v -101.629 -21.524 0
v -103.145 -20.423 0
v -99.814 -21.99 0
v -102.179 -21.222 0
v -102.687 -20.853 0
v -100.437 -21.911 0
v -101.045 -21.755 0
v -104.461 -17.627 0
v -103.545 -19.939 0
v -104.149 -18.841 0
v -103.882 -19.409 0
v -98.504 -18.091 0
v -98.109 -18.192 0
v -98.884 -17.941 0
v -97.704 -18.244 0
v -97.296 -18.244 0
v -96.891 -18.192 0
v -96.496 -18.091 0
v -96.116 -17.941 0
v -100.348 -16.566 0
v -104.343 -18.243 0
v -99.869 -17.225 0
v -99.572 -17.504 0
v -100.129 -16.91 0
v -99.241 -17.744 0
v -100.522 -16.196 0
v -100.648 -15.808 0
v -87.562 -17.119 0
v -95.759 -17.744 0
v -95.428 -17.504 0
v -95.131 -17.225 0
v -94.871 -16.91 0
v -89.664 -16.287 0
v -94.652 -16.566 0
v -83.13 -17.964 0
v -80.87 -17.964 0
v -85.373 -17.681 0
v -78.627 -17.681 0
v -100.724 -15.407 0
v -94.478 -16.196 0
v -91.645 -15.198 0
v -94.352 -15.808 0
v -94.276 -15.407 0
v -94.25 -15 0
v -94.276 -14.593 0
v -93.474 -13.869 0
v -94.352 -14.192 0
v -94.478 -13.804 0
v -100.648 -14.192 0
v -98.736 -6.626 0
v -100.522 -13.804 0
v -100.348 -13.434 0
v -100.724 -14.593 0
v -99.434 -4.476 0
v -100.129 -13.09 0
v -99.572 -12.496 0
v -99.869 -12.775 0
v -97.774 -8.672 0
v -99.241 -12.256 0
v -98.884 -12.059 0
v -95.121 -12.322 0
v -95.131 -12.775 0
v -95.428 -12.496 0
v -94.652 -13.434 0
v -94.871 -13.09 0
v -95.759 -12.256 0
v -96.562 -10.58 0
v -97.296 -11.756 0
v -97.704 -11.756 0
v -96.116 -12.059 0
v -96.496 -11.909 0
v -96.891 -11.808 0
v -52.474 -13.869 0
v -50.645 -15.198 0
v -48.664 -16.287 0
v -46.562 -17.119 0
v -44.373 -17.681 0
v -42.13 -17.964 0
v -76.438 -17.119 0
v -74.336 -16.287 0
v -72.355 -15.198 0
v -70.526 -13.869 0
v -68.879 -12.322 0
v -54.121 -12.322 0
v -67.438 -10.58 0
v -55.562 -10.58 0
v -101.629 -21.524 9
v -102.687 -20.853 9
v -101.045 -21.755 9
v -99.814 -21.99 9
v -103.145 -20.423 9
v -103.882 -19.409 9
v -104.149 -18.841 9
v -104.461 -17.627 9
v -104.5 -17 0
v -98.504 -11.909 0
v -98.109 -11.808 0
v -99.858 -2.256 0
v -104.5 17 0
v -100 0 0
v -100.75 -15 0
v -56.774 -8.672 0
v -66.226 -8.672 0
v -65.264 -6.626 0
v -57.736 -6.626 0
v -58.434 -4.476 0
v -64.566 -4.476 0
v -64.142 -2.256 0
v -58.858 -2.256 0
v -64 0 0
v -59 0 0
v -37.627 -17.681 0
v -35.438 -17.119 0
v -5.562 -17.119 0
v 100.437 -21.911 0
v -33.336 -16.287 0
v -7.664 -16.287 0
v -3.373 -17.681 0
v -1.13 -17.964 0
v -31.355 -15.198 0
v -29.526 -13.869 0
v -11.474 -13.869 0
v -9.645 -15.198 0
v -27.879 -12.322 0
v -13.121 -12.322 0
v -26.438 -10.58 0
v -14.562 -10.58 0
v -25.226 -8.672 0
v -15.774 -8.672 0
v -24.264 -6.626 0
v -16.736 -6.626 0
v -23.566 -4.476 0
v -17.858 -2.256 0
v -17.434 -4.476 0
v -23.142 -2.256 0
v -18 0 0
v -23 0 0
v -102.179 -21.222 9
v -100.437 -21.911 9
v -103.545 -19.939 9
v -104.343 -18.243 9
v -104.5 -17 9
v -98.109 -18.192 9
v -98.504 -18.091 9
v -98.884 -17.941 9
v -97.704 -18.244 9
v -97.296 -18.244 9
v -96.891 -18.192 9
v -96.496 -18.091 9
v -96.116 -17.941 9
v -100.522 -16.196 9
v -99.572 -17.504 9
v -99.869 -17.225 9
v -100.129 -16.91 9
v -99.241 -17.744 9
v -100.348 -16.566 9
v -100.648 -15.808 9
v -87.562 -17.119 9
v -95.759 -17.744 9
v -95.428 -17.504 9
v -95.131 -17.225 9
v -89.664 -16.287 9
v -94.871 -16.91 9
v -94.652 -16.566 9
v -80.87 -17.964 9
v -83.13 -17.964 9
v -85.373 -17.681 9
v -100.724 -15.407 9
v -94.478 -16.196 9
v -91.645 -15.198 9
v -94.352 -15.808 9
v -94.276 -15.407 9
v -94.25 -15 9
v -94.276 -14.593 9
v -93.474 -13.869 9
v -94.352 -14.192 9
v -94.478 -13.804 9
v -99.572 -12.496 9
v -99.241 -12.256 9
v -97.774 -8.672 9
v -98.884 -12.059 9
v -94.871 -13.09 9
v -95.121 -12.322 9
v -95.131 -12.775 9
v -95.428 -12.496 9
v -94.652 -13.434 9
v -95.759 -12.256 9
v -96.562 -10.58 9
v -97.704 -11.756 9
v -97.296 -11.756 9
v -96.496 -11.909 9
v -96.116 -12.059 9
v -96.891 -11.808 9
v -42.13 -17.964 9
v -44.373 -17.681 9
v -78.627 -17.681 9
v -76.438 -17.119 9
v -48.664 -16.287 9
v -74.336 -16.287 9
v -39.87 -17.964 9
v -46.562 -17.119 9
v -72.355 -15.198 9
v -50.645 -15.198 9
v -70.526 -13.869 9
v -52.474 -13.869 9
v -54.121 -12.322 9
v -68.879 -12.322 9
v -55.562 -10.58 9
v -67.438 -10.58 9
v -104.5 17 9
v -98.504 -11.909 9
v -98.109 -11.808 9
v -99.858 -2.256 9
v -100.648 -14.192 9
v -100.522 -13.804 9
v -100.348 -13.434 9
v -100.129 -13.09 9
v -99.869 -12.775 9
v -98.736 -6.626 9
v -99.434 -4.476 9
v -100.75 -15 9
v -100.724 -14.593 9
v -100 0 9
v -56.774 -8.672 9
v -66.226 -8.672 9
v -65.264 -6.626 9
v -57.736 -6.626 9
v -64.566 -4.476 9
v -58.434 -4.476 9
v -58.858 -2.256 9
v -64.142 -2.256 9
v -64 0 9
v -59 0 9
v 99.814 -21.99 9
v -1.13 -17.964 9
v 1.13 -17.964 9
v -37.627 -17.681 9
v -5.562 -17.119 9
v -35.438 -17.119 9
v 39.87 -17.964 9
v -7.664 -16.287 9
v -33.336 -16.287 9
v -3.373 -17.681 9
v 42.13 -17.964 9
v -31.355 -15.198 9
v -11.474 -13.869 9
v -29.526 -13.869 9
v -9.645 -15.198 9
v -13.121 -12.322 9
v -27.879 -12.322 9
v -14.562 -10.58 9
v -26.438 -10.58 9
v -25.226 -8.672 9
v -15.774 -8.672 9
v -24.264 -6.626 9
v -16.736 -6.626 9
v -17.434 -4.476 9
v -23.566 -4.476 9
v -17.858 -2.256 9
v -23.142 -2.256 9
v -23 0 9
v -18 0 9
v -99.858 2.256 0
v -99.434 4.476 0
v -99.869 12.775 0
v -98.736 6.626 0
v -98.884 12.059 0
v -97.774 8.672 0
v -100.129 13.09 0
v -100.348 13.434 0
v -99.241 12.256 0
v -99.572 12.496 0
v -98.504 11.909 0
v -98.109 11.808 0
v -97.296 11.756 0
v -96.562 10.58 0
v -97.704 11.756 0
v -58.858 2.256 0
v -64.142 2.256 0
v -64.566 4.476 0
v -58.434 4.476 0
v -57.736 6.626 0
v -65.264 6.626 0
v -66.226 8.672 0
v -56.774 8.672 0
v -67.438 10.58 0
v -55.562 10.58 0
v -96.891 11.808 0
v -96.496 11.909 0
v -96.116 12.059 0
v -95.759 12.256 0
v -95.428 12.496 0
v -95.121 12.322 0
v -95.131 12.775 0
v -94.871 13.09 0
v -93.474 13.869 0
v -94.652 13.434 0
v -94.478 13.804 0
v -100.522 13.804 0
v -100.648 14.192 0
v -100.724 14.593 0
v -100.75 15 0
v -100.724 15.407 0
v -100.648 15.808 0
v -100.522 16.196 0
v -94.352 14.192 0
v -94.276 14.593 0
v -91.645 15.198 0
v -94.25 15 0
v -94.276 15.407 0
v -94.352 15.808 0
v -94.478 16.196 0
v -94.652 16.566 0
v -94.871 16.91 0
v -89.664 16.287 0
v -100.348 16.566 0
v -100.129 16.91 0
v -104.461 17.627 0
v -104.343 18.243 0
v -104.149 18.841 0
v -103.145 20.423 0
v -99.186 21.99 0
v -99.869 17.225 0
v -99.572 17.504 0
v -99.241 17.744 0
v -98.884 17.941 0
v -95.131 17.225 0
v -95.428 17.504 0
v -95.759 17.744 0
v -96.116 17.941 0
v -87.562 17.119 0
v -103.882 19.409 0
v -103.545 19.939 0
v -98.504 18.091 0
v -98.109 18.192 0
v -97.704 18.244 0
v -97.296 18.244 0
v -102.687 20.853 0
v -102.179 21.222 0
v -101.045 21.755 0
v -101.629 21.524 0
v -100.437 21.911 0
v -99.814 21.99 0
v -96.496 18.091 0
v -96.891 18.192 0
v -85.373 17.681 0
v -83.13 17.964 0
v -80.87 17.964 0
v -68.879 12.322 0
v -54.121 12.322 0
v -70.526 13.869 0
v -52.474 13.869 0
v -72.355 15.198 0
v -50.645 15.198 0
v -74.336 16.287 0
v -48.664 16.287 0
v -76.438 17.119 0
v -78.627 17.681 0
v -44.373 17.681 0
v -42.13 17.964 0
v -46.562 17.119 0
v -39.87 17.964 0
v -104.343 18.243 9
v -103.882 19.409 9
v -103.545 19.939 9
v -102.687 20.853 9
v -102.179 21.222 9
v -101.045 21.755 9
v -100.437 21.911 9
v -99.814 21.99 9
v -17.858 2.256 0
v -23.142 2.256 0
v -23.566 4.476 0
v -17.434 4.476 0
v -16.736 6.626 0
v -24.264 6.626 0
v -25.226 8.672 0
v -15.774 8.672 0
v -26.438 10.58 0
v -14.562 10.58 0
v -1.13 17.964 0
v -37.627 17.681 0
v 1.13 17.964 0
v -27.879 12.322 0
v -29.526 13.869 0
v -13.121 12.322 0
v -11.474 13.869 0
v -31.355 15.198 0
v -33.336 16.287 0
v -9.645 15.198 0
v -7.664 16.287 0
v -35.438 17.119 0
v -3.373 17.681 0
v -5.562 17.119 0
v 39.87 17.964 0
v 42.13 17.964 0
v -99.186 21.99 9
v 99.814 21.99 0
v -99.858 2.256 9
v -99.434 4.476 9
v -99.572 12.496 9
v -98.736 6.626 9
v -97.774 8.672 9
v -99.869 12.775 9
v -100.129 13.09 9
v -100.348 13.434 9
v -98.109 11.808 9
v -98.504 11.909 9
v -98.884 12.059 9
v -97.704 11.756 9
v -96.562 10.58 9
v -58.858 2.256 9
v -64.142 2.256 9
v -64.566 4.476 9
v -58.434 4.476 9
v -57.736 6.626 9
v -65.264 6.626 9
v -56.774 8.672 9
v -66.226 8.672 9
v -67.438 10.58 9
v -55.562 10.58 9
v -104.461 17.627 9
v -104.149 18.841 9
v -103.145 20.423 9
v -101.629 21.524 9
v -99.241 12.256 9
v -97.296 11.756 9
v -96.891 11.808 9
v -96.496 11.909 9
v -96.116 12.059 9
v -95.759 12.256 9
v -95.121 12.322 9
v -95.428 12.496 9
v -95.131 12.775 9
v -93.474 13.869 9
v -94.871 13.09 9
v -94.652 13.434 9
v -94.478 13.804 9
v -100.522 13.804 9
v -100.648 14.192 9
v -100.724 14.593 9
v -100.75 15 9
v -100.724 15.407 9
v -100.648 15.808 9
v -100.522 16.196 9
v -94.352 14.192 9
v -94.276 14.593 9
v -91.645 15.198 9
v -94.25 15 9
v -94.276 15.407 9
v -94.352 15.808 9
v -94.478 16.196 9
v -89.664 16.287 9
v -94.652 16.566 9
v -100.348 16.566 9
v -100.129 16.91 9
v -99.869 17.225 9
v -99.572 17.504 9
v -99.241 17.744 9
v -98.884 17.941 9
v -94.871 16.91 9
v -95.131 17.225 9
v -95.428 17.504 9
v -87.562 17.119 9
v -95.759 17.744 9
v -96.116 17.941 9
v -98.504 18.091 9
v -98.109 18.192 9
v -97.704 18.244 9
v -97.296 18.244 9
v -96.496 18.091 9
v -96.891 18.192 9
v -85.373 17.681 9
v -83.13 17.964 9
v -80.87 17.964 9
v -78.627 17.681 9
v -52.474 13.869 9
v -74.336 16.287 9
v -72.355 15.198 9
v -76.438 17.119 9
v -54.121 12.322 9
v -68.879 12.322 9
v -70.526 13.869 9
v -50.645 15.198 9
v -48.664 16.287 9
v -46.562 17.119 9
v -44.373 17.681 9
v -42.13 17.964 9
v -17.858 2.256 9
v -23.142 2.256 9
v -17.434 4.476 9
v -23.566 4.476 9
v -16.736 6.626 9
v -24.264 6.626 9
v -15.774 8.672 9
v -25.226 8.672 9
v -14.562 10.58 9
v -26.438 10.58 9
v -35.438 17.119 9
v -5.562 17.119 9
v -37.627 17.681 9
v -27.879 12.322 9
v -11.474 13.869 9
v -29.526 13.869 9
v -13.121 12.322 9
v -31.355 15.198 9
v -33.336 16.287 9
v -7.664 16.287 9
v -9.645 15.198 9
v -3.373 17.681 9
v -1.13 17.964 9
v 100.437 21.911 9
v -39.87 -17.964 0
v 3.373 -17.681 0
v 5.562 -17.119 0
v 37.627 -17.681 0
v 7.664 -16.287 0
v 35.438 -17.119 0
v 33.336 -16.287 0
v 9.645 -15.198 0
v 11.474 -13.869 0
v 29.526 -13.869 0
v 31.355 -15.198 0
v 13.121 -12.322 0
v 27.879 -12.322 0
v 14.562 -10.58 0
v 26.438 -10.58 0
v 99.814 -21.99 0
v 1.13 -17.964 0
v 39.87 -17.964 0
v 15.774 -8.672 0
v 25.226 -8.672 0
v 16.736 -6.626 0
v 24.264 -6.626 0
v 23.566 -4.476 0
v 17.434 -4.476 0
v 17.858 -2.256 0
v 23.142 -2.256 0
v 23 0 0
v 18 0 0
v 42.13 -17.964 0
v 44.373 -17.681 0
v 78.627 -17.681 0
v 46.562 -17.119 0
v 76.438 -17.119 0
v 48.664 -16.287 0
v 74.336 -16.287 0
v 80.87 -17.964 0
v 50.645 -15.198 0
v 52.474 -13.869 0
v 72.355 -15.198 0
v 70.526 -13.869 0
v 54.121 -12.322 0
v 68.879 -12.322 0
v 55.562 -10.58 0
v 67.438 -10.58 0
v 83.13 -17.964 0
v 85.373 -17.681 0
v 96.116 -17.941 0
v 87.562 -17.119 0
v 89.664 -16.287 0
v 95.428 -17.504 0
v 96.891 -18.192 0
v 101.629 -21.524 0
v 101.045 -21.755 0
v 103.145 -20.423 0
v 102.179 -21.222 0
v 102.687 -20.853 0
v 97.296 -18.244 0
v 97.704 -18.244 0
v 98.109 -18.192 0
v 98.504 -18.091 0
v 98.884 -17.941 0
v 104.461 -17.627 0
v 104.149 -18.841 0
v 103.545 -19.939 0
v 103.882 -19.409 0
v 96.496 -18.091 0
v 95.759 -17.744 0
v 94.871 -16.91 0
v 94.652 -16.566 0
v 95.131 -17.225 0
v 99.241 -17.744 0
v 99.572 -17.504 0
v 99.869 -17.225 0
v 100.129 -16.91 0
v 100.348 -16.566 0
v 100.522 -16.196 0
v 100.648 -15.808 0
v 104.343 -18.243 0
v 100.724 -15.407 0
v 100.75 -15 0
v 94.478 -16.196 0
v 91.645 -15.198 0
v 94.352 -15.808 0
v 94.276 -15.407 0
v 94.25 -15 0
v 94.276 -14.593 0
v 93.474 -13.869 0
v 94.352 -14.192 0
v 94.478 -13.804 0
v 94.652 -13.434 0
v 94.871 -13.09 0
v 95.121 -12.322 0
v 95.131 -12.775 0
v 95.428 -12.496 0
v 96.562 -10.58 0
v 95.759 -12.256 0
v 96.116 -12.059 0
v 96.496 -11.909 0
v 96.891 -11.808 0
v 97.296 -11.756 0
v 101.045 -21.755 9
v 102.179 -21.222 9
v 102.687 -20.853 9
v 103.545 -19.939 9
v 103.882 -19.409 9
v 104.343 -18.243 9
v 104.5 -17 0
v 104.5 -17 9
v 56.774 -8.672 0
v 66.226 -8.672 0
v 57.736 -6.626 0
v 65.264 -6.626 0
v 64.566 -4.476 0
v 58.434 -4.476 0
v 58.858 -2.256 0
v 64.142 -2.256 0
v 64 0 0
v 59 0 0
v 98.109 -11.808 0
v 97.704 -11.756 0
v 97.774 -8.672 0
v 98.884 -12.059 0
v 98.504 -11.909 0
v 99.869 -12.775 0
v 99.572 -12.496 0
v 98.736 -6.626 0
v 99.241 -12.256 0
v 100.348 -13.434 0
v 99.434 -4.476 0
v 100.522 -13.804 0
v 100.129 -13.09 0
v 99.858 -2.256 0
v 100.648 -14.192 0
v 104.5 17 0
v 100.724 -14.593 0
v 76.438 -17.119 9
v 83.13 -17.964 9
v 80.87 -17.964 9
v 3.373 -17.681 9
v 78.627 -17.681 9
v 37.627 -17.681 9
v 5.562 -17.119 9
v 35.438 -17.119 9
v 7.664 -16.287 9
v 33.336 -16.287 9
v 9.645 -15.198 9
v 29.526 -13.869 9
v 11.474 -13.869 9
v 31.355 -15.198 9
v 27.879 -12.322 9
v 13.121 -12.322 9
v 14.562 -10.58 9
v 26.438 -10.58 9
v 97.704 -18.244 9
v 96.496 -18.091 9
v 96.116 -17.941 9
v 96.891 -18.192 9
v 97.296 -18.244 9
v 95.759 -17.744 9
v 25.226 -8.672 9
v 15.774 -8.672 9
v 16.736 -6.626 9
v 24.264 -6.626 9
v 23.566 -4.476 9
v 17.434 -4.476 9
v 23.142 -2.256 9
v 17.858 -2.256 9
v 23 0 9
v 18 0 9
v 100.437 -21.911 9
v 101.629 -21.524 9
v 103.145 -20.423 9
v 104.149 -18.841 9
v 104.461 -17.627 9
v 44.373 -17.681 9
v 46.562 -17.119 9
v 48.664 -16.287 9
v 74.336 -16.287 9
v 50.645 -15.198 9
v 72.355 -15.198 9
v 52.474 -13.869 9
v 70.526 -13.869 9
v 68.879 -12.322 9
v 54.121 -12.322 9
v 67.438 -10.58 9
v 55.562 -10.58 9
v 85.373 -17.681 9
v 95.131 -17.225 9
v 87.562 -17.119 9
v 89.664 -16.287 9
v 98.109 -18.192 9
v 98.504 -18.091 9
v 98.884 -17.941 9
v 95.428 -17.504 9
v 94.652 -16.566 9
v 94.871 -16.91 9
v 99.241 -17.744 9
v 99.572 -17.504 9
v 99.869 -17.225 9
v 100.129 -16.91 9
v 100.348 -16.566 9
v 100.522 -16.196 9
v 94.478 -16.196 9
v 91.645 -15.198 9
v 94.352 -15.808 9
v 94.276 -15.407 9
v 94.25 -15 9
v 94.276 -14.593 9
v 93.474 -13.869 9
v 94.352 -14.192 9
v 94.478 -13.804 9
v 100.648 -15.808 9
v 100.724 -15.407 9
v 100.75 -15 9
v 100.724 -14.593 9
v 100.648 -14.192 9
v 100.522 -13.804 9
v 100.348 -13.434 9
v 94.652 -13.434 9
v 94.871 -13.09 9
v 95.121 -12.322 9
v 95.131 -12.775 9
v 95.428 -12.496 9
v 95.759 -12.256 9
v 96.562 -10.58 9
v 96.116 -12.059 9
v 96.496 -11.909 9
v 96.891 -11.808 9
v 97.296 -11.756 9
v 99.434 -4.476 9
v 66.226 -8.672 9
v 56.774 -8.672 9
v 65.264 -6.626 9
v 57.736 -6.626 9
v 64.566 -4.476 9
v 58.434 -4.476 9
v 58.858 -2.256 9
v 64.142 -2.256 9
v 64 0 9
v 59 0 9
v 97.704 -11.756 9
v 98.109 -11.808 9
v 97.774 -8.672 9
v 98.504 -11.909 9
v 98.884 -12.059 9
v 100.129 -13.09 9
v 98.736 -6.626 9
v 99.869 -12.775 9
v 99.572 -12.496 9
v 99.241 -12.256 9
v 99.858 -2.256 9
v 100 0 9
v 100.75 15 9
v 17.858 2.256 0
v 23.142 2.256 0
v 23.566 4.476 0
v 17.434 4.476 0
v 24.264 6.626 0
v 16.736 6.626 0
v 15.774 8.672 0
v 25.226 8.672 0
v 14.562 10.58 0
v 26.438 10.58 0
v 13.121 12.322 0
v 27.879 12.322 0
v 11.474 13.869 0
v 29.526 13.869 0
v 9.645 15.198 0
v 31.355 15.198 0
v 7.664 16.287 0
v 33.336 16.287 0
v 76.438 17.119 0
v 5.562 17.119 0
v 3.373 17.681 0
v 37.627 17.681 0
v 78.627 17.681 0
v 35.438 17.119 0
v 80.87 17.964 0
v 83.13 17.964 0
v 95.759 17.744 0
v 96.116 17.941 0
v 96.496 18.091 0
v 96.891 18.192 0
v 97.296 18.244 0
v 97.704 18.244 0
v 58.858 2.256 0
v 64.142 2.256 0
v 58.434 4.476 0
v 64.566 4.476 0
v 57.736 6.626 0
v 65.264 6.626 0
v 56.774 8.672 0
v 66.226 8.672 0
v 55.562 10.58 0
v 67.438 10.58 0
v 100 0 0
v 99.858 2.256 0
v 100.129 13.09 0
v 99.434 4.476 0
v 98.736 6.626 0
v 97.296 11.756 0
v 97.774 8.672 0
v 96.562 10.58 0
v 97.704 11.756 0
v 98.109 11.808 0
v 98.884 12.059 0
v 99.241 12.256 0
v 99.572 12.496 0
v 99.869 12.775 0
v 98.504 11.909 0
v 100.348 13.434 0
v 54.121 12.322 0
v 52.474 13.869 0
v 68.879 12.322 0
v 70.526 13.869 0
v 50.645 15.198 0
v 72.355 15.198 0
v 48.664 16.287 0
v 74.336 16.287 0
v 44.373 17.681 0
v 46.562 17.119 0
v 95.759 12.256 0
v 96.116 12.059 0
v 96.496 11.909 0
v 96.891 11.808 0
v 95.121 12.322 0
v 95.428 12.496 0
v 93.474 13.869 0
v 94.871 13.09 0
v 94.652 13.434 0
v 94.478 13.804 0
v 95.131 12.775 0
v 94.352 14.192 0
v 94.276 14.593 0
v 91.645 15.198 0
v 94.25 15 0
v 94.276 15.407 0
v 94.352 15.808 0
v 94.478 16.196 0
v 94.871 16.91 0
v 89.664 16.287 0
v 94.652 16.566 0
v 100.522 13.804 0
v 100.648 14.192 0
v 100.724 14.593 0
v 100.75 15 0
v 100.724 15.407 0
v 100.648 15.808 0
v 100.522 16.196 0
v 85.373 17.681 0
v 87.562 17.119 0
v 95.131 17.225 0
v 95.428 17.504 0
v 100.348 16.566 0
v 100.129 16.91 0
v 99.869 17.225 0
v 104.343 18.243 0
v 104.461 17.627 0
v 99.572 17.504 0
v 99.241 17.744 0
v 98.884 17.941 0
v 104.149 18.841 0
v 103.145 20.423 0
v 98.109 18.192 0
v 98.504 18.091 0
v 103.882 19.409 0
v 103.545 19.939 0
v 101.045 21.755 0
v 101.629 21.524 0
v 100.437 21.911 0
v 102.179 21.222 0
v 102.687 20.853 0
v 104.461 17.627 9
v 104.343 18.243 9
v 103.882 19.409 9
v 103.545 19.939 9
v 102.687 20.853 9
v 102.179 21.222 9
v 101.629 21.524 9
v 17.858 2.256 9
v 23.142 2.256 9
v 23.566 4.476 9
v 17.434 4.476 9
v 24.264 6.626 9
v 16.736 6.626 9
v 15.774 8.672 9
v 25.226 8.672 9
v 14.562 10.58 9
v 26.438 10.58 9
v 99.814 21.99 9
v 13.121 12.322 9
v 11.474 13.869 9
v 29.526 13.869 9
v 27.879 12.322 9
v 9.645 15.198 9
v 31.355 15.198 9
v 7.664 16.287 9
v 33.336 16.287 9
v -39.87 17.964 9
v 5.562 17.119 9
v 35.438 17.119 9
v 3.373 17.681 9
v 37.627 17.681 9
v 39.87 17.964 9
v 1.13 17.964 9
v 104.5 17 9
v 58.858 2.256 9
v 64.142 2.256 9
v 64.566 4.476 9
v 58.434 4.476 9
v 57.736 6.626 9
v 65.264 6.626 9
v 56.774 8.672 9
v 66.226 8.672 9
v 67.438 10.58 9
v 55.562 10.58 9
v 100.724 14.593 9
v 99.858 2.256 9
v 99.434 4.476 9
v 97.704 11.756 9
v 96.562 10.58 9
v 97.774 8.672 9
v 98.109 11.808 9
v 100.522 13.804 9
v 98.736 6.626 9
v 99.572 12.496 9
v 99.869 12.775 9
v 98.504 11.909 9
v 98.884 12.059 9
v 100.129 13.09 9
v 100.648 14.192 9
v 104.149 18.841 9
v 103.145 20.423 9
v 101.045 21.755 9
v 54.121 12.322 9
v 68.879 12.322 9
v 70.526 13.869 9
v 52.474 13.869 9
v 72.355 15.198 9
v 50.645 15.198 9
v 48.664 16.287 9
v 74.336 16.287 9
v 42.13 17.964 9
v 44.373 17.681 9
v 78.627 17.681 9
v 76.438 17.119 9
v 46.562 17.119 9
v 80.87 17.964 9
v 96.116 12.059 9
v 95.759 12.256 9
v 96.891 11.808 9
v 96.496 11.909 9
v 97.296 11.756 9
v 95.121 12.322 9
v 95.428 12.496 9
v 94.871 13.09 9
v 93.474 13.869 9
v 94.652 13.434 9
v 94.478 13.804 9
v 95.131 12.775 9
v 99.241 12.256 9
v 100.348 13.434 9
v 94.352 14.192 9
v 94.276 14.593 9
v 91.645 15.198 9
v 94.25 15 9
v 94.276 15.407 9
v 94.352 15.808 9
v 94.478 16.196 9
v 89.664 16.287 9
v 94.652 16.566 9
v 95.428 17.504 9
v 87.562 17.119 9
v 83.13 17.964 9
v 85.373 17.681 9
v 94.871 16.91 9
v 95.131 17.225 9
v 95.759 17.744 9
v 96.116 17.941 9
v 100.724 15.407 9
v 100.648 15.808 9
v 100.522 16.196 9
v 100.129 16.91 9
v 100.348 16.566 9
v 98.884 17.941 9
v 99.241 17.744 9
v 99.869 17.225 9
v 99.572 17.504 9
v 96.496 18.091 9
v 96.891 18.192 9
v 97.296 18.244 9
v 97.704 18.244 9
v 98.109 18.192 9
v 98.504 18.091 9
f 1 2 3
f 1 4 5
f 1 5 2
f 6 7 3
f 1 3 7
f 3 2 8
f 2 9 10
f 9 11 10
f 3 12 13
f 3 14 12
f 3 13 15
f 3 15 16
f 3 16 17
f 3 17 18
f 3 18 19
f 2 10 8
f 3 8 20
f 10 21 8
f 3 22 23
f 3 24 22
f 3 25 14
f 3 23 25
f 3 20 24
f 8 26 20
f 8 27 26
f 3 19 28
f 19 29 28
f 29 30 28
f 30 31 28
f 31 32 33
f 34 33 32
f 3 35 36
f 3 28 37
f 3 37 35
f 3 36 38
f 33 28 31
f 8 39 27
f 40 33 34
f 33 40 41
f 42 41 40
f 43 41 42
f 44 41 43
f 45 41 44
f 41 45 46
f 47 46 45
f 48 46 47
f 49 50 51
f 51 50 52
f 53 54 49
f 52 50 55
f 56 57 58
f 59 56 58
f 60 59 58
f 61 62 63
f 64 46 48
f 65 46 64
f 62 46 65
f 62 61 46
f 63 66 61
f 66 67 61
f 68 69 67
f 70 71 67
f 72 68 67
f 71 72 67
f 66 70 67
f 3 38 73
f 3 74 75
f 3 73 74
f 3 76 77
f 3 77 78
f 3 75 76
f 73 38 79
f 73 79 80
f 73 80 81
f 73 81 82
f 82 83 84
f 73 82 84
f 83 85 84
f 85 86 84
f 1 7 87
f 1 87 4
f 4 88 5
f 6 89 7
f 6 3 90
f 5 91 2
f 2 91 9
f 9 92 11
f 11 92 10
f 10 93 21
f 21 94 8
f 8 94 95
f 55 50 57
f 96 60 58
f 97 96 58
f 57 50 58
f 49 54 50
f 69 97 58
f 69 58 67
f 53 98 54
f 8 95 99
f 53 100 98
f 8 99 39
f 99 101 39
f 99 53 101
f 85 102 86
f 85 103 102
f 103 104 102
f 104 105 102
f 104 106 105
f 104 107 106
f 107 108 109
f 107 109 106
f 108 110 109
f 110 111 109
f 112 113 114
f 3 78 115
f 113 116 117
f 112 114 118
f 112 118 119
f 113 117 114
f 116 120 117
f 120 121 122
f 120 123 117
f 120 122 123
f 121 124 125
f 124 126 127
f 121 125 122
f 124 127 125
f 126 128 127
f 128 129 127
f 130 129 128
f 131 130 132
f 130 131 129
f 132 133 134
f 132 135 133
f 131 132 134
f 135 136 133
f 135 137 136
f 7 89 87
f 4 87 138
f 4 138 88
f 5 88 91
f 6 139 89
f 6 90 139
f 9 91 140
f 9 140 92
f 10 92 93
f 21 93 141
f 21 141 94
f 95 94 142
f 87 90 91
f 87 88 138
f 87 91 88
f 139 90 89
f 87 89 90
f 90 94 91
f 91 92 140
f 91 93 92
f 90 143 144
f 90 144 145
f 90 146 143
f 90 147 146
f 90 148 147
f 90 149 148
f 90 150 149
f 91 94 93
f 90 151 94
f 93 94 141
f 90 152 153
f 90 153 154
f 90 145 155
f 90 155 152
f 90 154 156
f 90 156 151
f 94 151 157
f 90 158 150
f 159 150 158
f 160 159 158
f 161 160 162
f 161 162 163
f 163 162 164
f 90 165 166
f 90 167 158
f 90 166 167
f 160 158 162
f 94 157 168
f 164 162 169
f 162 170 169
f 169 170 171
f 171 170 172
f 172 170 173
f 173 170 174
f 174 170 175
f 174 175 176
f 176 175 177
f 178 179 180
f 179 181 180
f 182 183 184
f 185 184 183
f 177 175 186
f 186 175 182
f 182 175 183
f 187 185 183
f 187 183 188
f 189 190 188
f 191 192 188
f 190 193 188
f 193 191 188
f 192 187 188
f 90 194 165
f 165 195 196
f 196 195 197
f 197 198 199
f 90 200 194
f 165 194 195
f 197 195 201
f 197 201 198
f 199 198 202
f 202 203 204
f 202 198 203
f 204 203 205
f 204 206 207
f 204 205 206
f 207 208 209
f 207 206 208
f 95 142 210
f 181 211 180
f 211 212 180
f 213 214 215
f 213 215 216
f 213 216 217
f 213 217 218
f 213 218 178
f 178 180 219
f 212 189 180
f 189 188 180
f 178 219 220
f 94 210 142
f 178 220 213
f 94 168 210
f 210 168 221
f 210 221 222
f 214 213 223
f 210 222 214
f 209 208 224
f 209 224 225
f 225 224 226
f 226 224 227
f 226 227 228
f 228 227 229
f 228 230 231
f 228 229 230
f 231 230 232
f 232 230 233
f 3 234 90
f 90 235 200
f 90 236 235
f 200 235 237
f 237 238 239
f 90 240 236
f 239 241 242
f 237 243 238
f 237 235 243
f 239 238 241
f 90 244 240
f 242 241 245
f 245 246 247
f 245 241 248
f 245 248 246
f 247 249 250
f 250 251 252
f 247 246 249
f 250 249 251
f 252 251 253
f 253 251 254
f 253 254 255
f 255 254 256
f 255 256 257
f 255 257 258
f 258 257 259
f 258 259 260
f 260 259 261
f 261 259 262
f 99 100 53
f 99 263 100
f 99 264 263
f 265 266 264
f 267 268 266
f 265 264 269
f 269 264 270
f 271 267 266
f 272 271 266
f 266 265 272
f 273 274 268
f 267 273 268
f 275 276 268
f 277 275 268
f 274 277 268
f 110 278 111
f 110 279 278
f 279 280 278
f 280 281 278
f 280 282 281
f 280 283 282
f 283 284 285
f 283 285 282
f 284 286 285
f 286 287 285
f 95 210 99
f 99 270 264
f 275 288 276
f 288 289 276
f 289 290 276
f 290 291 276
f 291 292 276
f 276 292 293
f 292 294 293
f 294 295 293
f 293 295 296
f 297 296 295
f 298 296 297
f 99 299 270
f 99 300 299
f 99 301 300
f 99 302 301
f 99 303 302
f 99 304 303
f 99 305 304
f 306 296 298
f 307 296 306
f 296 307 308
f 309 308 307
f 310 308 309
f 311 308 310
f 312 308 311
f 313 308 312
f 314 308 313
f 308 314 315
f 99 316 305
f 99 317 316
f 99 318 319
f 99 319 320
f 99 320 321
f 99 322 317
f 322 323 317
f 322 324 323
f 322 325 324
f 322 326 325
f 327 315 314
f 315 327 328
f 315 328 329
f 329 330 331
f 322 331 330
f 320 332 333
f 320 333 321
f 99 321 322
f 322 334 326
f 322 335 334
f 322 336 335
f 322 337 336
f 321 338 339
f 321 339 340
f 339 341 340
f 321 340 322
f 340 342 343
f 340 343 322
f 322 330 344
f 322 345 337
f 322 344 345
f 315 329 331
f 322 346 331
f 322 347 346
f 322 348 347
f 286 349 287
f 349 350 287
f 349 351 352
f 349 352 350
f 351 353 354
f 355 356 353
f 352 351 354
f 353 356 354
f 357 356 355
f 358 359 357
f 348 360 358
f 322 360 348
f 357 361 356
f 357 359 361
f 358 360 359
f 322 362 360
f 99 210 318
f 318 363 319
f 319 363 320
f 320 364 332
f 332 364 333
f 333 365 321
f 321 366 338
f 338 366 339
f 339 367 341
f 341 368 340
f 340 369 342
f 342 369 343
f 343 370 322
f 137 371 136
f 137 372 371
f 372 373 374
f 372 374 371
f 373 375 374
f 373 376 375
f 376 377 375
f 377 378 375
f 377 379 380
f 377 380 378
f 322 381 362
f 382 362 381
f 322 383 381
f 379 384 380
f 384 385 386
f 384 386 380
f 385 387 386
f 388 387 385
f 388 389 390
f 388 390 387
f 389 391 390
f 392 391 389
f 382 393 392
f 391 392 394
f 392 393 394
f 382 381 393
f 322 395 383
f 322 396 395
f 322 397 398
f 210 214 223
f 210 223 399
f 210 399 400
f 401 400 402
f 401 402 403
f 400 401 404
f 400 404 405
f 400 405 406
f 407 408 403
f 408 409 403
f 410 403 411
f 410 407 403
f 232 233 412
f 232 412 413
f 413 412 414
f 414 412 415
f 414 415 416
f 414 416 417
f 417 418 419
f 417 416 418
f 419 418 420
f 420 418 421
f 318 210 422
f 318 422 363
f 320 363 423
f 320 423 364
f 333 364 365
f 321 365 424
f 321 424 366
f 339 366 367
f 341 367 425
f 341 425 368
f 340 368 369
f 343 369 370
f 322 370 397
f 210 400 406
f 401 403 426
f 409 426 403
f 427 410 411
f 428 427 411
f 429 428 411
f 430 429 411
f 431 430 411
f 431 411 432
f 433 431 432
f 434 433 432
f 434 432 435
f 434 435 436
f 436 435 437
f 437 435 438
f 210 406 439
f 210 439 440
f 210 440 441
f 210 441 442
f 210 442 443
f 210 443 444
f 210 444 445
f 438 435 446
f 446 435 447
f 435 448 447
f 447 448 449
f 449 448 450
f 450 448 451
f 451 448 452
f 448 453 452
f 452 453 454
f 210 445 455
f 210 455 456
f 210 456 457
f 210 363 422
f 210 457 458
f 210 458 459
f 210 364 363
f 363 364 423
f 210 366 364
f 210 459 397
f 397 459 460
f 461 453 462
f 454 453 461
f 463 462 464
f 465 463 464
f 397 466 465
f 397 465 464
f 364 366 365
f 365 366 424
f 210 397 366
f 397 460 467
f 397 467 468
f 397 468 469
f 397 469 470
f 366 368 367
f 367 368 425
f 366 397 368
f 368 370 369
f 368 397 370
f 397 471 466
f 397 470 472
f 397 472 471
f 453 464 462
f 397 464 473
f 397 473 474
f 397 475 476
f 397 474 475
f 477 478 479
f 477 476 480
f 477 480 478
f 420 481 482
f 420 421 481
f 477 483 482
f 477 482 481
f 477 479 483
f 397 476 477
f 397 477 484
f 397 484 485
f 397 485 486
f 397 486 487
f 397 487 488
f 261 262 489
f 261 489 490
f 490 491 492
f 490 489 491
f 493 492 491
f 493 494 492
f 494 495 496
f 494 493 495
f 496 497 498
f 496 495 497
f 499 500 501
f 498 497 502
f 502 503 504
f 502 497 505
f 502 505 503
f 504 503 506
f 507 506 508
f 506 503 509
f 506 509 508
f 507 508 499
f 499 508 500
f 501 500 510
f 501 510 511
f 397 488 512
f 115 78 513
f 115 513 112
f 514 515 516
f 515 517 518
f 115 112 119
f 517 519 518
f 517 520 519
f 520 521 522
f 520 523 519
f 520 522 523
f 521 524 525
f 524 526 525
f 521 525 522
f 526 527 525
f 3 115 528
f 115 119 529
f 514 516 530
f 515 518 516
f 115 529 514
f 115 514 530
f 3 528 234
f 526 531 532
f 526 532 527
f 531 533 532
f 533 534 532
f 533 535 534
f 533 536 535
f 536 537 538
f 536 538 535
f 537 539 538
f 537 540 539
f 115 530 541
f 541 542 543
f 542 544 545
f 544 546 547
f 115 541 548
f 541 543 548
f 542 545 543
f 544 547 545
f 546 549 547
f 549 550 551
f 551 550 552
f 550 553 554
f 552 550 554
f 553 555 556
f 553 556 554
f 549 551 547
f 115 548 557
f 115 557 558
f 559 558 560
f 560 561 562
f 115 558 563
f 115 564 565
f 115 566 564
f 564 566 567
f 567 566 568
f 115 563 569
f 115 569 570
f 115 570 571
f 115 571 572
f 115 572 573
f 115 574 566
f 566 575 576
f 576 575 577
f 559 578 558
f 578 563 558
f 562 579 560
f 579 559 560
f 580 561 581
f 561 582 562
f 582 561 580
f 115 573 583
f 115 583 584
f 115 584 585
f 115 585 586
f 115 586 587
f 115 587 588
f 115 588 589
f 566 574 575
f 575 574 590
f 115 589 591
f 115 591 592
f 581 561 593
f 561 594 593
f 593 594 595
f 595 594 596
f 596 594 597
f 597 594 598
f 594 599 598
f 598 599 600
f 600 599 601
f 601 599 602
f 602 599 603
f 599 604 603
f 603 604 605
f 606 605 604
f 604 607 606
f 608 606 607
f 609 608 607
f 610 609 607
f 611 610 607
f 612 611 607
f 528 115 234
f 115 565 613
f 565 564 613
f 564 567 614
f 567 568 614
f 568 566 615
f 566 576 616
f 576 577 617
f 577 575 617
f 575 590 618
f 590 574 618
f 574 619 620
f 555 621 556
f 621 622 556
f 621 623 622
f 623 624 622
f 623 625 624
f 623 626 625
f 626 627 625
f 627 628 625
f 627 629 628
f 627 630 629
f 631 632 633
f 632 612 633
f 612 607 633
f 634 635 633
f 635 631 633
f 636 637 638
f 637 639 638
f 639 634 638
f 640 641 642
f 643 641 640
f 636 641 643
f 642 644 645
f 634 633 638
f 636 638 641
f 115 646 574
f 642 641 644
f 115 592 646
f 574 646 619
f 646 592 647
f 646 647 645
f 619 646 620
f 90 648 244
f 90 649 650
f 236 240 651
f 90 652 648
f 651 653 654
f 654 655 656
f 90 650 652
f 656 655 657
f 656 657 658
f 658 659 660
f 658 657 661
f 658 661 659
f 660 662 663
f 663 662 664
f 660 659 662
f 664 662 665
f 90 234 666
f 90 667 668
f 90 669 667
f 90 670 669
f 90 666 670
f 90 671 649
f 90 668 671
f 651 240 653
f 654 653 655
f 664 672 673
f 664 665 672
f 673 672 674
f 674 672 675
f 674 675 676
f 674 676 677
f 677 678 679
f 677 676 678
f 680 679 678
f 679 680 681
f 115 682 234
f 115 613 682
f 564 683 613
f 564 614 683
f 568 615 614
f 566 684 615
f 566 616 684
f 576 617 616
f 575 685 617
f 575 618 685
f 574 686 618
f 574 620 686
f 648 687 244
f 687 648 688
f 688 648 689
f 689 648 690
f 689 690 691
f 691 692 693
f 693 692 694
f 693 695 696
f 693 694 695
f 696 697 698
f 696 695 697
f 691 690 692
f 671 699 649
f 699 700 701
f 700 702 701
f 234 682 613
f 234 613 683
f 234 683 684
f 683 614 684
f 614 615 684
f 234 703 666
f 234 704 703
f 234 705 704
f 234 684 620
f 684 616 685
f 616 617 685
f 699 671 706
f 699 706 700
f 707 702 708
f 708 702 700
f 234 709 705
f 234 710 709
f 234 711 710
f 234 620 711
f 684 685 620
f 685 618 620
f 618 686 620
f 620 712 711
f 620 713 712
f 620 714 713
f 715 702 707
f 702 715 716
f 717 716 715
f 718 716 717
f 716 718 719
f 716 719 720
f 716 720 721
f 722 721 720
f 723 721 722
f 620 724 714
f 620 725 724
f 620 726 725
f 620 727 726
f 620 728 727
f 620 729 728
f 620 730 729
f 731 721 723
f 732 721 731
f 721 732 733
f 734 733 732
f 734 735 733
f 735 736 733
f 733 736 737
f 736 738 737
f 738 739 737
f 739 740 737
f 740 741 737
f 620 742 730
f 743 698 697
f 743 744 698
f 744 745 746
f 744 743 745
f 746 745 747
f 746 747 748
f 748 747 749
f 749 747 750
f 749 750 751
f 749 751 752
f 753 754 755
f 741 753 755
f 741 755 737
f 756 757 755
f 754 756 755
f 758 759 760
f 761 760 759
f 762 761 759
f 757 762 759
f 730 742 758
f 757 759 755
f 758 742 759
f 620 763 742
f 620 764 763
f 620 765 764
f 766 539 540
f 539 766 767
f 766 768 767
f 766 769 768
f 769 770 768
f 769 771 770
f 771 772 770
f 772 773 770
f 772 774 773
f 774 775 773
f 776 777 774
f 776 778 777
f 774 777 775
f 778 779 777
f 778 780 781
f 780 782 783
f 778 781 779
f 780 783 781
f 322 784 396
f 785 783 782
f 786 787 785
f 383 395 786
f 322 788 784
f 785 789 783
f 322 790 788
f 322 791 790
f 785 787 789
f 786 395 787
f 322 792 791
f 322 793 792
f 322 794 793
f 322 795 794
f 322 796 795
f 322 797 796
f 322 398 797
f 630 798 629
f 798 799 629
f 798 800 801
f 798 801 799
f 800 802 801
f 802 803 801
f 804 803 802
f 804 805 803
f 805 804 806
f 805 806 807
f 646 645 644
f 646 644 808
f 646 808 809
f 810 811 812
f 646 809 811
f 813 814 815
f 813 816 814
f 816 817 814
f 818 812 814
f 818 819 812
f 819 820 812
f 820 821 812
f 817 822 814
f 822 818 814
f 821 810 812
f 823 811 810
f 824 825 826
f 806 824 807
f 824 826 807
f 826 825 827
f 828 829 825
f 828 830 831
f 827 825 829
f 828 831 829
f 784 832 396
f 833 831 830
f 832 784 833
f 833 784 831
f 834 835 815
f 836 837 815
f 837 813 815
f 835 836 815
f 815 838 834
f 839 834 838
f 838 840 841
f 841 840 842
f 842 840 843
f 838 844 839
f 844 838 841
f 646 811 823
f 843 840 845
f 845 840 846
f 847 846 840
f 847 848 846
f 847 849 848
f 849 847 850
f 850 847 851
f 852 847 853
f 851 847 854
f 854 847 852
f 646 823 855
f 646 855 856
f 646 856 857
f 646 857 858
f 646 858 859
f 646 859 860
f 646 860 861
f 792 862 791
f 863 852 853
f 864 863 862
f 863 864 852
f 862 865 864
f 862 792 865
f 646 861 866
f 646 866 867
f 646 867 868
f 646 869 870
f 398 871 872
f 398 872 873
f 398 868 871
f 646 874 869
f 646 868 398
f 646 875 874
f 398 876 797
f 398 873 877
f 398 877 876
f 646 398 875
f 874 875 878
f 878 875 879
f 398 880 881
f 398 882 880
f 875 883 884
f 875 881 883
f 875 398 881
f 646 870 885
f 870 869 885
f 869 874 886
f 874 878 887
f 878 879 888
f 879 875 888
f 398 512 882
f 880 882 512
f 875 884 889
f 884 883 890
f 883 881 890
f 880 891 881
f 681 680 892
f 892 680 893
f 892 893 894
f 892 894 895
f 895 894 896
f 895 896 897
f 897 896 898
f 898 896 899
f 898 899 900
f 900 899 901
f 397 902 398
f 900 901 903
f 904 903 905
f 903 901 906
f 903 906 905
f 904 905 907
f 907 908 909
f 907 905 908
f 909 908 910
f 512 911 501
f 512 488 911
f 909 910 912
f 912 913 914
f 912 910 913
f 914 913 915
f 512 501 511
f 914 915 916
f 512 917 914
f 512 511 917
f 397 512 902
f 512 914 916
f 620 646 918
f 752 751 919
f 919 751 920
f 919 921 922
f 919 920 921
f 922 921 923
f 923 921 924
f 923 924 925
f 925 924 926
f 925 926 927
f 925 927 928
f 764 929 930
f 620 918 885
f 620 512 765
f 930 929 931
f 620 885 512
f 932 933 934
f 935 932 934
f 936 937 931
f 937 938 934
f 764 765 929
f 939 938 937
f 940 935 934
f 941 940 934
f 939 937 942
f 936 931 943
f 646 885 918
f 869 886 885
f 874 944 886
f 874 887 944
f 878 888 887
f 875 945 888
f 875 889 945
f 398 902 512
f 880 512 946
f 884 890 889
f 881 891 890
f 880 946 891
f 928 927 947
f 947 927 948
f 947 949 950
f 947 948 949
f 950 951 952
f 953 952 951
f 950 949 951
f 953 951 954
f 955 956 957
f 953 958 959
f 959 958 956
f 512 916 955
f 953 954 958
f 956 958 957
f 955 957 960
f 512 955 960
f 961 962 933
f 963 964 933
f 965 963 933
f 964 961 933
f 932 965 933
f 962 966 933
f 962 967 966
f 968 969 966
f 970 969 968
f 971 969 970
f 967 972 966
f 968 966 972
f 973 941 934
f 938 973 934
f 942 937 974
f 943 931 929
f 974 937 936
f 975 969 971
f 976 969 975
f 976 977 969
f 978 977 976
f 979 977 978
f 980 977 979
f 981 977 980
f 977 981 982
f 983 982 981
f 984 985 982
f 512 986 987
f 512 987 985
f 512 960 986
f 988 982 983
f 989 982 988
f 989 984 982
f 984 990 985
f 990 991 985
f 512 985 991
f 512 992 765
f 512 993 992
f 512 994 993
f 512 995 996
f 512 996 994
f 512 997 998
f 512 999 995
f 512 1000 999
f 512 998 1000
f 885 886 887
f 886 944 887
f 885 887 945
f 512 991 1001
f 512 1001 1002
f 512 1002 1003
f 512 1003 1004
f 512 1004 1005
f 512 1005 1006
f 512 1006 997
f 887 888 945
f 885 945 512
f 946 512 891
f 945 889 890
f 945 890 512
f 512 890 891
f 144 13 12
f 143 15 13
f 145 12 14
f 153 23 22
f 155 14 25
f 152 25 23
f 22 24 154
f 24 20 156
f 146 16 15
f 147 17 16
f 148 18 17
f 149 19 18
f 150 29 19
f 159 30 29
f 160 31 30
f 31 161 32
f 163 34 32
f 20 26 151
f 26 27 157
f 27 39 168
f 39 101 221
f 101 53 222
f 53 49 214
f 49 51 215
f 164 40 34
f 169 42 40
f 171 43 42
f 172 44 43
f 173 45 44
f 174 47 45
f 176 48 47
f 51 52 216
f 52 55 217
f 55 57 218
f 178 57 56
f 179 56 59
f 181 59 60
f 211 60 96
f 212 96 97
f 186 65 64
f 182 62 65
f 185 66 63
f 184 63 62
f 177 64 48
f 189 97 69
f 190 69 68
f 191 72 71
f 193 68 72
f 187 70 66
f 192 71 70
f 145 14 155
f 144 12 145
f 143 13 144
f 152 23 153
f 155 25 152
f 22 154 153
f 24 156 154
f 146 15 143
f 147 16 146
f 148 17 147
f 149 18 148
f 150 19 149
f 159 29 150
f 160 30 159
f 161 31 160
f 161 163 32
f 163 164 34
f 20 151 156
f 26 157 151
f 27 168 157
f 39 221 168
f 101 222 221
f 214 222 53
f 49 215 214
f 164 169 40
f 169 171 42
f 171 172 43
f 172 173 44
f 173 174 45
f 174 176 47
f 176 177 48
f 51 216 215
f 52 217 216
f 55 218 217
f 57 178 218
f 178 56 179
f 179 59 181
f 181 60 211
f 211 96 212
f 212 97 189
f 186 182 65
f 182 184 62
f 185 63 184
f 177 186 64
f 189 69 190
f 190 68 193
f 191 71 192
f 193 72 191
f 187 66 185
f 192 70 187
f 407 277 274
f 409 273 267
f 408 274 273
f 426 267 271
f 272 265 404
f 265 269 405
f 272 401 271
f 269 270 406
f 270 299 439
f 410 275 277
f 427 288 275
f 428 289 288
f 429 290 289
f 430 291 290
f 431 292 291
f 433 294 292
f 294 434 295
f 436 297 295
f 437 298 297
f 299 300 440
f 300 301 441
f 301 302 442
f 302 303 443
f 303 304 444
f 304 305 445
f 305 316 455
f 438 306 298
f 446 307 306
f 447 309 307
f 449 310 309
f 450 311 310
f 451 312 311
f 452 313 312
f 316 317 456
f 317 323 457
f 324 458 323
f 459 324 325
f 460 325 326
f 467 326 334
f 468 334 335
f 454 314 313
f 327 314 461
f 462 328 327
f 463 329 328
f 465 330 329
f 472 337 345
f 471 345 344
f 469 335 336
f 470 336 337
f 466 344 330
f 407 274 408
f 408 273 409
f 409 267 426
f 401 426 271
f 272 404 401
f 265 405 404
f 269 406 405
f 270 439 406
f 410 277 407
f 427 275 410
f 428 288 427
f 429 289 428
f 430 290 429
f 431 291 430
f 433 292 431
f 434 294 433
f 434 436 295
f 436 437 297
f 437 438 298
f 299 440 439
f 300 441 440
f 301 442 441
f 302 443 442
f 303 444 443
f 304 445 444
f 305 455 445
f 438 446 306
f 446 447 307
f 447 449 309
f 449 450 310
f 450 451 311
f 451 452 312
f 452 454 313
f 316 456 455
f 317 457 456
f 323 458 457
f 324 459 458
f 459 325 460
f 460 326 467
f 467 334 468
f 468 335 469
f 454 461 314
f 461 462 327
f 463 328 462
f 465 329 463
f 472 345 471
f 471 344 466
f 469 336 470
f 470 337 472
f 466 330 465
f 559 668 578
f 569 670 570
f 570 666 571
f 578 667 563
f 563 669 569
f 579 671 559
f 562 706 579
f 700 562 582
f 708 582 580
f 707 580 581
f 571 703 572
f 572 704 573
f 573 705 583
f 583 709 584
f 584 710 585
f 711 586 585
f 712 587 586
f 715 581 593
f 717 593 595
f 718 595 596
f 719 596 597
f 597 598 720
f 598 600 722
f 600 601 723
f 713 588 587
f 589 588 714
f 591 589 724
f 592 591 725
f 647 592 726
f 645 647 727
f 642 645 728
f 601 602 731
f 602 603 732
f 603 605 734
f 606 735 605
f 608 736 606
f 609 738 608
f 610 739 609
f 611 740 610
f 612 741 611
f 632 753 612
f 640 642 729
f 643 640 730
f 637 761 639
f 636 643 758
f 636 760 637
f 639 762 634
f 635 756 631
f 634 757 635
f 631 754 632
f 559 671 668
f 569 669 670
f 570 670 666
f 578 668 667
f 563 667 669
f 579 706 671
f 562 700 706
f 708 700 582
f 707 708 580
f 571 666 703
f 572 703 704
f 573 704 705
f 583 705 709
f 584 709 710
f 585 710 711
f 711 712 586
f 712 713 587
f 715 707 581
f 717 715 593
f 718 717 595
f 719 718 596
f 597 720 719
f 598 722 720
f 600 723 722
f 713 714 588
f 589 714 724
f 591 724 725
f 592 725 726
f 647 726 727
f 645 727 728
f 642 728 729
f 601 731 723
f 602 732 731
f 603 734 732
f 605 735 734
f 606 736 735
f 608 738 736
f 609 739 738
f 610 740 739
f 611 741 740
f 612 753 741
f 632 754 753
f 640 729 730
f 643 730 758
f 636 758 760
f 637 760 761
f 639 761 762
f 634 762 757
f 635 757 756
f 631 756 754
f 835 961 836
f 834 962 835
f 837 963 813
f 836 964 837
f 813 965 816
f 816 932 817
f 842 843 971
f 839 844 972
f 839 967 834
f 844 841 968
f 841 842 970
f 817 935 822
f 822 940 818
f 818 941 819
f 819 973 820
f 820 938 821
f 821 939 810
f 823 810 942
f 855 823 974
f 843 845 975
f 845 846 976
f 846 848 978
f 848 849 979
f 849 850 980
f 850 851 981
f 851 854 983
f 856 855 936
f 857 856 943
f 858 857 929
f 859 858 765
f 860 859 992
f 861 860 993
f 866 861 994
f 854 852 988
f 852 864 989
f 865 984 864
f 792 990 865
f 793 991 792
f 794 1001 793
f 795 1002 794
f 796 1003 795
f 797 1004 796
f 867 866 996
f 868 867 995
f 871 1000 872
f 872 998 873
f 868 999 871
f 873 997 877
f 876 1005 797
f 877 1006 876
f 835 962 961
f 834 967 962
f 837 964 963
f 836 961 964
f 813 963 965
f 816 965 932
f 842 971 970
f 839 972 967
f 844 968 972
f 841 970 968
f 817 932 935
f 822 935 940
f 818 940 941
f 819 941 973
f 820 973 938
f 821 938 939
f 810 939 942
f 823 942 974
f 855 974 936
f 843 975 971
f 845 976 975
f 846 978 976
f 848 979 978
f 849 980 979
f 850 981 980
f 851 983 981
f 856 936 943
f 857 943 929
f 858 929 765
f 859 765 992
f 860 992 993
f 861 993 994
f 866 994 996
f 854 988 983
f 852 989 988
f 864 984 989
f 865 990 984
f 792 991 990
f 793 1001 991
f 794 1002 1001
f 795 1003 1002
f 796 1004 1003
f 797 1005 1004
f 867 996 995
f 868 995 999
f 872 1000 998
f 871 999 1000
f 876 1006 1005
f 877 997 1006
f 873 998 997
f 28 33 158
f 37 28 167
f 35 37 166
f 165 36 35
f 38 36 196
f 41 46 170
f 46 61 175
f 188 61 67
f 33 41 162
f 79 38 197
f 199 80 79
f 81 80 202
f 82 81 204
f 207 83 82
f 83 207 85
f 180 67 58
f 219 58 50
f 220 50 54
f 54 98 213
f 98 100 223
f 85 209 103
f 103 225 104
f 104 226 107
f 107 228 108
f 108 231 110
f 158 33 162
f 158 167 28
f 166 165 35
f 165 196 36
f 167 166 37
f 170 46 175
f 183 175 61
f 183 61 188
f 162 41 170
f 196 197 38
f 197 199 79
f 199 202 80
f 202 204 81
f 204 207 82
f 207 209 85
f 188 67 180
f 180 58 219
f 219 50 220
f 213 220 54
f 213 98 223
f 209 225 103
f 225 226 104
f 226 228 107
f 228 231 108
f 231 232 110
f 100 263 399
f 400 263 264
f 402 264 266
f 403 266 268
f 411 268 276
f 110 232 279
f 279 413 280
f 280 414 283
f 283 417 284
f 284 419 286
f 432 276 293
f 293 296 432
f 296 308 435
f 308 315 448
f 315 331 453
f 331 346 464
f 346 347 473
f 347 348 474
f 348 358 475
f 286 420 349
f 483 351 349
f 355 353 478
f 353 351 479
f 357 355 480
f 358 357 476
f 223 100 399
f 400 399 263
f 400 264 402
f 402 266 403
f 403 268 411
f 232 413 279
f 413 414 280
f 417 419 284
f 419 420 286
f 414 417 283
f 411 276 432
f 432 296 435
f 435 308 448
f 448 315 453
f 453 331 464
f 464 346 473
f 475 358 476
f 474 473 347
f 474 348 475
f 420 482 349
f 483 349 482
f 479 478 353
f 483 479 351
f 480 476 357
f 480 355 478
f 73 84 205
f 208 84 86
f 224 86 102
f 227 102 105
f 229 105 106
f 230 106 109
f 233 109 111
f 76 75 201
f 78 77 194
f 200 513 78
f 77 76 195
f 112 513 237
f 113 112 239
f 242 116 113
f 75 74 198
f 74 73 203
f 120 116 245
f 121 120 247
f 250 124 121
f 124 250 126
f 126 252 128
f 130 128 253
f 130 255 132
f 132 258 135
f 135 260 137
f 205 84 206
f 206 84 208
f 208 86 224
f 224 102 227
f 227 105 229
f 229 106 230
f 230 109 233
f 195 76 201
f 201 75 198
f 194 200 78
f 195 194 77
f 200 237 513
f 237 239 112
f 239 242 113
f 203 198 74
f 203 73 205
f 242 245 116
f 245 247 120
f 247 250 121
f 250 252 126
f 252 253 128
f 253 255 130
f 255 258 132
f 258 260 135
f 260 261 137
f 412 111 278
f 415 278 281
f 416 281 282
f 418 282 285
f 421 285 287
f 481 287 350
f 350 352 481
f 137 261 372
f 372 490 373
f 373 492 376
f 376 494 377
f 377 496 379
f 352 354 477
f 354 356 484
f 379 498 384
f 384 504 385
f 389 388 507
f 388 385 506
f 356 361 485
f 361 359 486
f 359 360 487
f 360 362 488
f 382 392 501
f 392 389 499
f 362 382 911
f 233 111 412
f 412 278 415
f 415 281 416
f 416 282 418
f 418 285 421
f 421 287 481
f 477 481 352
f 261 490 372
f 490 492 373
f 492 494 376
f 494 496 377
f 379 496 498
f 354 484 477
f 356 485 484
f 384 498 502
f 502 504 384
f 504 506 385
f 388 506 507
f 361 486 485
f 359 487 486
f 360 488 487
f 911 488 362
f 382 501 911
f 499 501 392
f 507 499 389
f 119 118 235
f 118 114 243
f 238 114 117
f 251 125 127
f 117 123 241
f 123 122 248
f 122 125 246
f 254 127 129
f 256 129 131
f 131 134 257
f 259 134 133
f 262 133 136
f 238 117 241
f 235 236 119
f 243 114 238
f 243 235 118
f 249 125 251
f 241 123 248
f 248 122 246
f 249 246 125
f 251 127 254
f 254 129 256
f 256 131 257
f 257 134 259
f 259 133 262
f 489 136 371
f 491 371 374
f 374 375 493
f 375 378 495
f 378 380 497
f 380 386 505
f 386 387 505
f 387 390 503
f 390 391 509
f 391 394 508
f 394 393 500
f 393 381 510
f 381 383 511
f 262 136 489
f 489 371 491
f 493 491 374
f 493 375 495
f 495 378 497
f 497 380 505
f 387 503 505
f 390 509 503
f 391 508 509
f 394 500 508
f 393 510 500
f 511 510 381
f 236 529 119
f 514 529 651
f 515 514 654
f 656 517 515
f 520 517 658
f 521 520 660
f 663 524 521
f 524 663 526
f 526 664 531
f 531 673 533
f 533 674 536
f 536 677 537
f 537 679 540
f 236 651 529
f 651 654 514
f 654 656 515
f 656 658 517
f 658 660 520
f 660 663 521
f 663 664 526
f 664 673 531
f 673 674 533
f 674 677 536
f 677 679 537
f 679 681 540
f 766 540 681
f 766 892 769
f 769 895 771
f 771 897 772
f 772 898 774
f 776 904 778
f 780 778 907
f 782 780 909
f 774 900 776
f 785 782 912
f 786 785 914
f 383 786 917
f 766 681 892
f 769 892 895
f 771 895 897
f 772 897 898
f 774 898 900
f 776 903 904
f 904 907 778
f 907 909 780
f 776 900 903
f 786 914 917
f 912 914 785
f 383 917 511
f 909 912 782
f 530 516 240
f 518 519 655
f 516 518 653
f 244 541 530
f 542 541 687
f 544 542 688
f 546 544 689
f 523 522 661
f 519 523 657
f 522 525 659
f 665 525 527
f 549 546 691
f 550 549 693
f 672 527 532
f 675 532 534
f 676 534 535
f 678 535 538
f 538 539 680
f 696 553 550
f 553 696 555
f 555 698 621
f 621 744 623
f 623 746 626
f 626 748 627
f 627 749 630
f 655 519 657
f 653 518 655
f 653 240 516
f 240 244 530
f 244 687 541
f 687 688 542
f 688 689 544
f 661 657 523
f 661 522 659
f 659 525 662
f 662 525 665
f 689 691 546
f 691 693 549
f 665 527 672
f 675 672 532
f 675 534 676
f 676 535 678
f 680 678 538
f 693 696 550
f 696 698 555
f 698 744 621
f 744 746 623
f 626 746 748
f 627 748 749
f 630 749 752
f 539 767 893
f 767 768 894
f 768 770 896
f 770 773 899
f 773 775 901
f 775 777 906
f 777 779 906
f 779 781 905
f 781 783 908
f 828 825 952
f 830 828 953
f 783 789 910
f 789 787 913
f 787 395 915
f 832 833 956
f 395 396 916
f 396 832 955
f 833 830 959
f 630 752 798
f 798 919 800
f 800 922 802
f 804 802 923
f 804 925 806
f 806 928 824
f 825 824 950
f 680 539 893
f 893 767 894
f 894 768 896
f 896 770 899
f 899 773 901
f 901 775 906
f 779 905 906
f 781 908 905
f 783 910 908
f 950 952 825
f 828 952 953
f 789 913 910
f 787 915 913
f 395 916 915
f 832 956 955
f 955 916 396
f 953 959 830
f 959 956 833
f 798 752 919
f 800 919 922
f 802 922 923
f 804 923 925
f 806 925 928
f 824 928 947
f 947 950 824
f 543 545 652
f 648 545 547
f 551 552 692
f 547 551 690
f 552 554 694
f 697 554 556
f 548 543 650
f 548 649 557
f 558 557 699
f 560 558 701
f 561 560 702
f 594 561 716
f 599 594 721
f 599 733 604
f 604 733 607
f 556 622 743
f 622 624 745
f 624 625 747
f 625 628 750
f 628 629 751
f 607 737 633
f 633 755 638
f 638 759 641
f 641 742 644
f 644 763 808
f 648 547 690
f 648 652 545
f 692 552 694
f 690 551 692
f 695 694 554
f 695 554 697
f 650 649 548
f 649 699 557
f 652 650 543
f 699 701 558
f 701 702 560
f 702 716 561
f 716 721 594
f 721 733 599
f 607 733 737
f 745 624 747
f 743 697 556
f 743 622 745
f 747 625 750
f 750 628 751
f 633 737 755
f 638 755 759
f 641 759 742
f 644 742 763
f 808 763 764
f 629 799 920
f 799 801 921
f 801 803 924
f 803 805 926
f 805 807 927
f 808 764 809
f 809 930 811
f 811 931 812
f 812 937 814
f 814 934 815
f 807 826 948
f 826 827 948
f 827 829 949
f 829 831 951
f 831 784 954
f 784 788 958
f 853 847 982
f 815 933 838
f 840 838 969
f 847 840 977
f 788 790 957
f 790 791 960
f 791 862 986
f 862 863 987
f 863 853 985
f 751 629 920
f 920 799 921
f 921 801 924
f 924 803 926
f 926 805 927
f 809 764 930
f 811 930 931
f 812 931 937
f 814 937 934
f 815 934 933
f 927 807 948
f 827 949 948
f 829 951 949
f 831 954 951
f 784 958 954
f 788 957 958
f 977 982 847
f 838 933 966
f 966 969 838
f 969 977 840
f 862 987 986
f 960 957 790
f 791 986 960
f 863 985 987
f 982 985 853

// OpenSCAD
$fn = 50;

difference() {
	union() {
		hull() {
			translate(v = [-99.5, 17.0, 0]) {
				cylinder(h = 9, r = 5);
			}
			translate(v = [99.5, 17.0, 0]) {
				cylinder(h = 9, r = 5);
			}
			translate(v = [-99.5, -17.0, 0]) {
				cylinder(h = 9, r = 5);
			}
			translate(v = [99.5, -17.0, 0]) {
				cylinder(h = 9, r = 5);
			}
		}
	}
	union() {
		translate(v = [-97.5, -15.0, -100.0]) {
			cylinder(h = 200, r = 3.25);
		}
		translate(v = [-97.5, 15.0, -100.0]) {
			cylinder(h = 200, r = 3.25);
		}
		translate(v = [97.5, -15.0, -100.0]) {
			cylinder(h = 200, r = 3.25);
		}
		translate(v = [97.5, 15.0, -100.0]) {
			cylinder(h = 200, r = 3.25);
		}
		translate(v = [-97.5, -15.0, -100.0]) {
			cylinder(h = 200, r = 1.8);
		}
		translate(v = [-97.5, 15.0, -100.0]) {
			cylinder(h = 200, r = 1.8);
		}
		translate(v = [97.5, -15.0, -100.0]) {
			cylinder(h = 200, r = 1.8);
		}
		translate(v = [97.5, 15.0, -100.0]) {
			cylinder(h = 200, r = 1.8);
		}
		translate(v = [-82.0, 0, 0.0]) {
			cylinder(h = 9, r = 18.0);
		}
		translate(v = [-41.0, 0, 0.0]) {
			cylinder(h = 9, r = 18.0);
		}
		cylinder(h = 9, r = 18.0);
		translate(v = [41.0, 0, 0.0]) {
			cylinder(h = 9, r = 18.0);
		}
		translate(v = [82.0, 0, 0.0]) {
			cylinder(h = 9, r = 18.0);
		}
	}
}
